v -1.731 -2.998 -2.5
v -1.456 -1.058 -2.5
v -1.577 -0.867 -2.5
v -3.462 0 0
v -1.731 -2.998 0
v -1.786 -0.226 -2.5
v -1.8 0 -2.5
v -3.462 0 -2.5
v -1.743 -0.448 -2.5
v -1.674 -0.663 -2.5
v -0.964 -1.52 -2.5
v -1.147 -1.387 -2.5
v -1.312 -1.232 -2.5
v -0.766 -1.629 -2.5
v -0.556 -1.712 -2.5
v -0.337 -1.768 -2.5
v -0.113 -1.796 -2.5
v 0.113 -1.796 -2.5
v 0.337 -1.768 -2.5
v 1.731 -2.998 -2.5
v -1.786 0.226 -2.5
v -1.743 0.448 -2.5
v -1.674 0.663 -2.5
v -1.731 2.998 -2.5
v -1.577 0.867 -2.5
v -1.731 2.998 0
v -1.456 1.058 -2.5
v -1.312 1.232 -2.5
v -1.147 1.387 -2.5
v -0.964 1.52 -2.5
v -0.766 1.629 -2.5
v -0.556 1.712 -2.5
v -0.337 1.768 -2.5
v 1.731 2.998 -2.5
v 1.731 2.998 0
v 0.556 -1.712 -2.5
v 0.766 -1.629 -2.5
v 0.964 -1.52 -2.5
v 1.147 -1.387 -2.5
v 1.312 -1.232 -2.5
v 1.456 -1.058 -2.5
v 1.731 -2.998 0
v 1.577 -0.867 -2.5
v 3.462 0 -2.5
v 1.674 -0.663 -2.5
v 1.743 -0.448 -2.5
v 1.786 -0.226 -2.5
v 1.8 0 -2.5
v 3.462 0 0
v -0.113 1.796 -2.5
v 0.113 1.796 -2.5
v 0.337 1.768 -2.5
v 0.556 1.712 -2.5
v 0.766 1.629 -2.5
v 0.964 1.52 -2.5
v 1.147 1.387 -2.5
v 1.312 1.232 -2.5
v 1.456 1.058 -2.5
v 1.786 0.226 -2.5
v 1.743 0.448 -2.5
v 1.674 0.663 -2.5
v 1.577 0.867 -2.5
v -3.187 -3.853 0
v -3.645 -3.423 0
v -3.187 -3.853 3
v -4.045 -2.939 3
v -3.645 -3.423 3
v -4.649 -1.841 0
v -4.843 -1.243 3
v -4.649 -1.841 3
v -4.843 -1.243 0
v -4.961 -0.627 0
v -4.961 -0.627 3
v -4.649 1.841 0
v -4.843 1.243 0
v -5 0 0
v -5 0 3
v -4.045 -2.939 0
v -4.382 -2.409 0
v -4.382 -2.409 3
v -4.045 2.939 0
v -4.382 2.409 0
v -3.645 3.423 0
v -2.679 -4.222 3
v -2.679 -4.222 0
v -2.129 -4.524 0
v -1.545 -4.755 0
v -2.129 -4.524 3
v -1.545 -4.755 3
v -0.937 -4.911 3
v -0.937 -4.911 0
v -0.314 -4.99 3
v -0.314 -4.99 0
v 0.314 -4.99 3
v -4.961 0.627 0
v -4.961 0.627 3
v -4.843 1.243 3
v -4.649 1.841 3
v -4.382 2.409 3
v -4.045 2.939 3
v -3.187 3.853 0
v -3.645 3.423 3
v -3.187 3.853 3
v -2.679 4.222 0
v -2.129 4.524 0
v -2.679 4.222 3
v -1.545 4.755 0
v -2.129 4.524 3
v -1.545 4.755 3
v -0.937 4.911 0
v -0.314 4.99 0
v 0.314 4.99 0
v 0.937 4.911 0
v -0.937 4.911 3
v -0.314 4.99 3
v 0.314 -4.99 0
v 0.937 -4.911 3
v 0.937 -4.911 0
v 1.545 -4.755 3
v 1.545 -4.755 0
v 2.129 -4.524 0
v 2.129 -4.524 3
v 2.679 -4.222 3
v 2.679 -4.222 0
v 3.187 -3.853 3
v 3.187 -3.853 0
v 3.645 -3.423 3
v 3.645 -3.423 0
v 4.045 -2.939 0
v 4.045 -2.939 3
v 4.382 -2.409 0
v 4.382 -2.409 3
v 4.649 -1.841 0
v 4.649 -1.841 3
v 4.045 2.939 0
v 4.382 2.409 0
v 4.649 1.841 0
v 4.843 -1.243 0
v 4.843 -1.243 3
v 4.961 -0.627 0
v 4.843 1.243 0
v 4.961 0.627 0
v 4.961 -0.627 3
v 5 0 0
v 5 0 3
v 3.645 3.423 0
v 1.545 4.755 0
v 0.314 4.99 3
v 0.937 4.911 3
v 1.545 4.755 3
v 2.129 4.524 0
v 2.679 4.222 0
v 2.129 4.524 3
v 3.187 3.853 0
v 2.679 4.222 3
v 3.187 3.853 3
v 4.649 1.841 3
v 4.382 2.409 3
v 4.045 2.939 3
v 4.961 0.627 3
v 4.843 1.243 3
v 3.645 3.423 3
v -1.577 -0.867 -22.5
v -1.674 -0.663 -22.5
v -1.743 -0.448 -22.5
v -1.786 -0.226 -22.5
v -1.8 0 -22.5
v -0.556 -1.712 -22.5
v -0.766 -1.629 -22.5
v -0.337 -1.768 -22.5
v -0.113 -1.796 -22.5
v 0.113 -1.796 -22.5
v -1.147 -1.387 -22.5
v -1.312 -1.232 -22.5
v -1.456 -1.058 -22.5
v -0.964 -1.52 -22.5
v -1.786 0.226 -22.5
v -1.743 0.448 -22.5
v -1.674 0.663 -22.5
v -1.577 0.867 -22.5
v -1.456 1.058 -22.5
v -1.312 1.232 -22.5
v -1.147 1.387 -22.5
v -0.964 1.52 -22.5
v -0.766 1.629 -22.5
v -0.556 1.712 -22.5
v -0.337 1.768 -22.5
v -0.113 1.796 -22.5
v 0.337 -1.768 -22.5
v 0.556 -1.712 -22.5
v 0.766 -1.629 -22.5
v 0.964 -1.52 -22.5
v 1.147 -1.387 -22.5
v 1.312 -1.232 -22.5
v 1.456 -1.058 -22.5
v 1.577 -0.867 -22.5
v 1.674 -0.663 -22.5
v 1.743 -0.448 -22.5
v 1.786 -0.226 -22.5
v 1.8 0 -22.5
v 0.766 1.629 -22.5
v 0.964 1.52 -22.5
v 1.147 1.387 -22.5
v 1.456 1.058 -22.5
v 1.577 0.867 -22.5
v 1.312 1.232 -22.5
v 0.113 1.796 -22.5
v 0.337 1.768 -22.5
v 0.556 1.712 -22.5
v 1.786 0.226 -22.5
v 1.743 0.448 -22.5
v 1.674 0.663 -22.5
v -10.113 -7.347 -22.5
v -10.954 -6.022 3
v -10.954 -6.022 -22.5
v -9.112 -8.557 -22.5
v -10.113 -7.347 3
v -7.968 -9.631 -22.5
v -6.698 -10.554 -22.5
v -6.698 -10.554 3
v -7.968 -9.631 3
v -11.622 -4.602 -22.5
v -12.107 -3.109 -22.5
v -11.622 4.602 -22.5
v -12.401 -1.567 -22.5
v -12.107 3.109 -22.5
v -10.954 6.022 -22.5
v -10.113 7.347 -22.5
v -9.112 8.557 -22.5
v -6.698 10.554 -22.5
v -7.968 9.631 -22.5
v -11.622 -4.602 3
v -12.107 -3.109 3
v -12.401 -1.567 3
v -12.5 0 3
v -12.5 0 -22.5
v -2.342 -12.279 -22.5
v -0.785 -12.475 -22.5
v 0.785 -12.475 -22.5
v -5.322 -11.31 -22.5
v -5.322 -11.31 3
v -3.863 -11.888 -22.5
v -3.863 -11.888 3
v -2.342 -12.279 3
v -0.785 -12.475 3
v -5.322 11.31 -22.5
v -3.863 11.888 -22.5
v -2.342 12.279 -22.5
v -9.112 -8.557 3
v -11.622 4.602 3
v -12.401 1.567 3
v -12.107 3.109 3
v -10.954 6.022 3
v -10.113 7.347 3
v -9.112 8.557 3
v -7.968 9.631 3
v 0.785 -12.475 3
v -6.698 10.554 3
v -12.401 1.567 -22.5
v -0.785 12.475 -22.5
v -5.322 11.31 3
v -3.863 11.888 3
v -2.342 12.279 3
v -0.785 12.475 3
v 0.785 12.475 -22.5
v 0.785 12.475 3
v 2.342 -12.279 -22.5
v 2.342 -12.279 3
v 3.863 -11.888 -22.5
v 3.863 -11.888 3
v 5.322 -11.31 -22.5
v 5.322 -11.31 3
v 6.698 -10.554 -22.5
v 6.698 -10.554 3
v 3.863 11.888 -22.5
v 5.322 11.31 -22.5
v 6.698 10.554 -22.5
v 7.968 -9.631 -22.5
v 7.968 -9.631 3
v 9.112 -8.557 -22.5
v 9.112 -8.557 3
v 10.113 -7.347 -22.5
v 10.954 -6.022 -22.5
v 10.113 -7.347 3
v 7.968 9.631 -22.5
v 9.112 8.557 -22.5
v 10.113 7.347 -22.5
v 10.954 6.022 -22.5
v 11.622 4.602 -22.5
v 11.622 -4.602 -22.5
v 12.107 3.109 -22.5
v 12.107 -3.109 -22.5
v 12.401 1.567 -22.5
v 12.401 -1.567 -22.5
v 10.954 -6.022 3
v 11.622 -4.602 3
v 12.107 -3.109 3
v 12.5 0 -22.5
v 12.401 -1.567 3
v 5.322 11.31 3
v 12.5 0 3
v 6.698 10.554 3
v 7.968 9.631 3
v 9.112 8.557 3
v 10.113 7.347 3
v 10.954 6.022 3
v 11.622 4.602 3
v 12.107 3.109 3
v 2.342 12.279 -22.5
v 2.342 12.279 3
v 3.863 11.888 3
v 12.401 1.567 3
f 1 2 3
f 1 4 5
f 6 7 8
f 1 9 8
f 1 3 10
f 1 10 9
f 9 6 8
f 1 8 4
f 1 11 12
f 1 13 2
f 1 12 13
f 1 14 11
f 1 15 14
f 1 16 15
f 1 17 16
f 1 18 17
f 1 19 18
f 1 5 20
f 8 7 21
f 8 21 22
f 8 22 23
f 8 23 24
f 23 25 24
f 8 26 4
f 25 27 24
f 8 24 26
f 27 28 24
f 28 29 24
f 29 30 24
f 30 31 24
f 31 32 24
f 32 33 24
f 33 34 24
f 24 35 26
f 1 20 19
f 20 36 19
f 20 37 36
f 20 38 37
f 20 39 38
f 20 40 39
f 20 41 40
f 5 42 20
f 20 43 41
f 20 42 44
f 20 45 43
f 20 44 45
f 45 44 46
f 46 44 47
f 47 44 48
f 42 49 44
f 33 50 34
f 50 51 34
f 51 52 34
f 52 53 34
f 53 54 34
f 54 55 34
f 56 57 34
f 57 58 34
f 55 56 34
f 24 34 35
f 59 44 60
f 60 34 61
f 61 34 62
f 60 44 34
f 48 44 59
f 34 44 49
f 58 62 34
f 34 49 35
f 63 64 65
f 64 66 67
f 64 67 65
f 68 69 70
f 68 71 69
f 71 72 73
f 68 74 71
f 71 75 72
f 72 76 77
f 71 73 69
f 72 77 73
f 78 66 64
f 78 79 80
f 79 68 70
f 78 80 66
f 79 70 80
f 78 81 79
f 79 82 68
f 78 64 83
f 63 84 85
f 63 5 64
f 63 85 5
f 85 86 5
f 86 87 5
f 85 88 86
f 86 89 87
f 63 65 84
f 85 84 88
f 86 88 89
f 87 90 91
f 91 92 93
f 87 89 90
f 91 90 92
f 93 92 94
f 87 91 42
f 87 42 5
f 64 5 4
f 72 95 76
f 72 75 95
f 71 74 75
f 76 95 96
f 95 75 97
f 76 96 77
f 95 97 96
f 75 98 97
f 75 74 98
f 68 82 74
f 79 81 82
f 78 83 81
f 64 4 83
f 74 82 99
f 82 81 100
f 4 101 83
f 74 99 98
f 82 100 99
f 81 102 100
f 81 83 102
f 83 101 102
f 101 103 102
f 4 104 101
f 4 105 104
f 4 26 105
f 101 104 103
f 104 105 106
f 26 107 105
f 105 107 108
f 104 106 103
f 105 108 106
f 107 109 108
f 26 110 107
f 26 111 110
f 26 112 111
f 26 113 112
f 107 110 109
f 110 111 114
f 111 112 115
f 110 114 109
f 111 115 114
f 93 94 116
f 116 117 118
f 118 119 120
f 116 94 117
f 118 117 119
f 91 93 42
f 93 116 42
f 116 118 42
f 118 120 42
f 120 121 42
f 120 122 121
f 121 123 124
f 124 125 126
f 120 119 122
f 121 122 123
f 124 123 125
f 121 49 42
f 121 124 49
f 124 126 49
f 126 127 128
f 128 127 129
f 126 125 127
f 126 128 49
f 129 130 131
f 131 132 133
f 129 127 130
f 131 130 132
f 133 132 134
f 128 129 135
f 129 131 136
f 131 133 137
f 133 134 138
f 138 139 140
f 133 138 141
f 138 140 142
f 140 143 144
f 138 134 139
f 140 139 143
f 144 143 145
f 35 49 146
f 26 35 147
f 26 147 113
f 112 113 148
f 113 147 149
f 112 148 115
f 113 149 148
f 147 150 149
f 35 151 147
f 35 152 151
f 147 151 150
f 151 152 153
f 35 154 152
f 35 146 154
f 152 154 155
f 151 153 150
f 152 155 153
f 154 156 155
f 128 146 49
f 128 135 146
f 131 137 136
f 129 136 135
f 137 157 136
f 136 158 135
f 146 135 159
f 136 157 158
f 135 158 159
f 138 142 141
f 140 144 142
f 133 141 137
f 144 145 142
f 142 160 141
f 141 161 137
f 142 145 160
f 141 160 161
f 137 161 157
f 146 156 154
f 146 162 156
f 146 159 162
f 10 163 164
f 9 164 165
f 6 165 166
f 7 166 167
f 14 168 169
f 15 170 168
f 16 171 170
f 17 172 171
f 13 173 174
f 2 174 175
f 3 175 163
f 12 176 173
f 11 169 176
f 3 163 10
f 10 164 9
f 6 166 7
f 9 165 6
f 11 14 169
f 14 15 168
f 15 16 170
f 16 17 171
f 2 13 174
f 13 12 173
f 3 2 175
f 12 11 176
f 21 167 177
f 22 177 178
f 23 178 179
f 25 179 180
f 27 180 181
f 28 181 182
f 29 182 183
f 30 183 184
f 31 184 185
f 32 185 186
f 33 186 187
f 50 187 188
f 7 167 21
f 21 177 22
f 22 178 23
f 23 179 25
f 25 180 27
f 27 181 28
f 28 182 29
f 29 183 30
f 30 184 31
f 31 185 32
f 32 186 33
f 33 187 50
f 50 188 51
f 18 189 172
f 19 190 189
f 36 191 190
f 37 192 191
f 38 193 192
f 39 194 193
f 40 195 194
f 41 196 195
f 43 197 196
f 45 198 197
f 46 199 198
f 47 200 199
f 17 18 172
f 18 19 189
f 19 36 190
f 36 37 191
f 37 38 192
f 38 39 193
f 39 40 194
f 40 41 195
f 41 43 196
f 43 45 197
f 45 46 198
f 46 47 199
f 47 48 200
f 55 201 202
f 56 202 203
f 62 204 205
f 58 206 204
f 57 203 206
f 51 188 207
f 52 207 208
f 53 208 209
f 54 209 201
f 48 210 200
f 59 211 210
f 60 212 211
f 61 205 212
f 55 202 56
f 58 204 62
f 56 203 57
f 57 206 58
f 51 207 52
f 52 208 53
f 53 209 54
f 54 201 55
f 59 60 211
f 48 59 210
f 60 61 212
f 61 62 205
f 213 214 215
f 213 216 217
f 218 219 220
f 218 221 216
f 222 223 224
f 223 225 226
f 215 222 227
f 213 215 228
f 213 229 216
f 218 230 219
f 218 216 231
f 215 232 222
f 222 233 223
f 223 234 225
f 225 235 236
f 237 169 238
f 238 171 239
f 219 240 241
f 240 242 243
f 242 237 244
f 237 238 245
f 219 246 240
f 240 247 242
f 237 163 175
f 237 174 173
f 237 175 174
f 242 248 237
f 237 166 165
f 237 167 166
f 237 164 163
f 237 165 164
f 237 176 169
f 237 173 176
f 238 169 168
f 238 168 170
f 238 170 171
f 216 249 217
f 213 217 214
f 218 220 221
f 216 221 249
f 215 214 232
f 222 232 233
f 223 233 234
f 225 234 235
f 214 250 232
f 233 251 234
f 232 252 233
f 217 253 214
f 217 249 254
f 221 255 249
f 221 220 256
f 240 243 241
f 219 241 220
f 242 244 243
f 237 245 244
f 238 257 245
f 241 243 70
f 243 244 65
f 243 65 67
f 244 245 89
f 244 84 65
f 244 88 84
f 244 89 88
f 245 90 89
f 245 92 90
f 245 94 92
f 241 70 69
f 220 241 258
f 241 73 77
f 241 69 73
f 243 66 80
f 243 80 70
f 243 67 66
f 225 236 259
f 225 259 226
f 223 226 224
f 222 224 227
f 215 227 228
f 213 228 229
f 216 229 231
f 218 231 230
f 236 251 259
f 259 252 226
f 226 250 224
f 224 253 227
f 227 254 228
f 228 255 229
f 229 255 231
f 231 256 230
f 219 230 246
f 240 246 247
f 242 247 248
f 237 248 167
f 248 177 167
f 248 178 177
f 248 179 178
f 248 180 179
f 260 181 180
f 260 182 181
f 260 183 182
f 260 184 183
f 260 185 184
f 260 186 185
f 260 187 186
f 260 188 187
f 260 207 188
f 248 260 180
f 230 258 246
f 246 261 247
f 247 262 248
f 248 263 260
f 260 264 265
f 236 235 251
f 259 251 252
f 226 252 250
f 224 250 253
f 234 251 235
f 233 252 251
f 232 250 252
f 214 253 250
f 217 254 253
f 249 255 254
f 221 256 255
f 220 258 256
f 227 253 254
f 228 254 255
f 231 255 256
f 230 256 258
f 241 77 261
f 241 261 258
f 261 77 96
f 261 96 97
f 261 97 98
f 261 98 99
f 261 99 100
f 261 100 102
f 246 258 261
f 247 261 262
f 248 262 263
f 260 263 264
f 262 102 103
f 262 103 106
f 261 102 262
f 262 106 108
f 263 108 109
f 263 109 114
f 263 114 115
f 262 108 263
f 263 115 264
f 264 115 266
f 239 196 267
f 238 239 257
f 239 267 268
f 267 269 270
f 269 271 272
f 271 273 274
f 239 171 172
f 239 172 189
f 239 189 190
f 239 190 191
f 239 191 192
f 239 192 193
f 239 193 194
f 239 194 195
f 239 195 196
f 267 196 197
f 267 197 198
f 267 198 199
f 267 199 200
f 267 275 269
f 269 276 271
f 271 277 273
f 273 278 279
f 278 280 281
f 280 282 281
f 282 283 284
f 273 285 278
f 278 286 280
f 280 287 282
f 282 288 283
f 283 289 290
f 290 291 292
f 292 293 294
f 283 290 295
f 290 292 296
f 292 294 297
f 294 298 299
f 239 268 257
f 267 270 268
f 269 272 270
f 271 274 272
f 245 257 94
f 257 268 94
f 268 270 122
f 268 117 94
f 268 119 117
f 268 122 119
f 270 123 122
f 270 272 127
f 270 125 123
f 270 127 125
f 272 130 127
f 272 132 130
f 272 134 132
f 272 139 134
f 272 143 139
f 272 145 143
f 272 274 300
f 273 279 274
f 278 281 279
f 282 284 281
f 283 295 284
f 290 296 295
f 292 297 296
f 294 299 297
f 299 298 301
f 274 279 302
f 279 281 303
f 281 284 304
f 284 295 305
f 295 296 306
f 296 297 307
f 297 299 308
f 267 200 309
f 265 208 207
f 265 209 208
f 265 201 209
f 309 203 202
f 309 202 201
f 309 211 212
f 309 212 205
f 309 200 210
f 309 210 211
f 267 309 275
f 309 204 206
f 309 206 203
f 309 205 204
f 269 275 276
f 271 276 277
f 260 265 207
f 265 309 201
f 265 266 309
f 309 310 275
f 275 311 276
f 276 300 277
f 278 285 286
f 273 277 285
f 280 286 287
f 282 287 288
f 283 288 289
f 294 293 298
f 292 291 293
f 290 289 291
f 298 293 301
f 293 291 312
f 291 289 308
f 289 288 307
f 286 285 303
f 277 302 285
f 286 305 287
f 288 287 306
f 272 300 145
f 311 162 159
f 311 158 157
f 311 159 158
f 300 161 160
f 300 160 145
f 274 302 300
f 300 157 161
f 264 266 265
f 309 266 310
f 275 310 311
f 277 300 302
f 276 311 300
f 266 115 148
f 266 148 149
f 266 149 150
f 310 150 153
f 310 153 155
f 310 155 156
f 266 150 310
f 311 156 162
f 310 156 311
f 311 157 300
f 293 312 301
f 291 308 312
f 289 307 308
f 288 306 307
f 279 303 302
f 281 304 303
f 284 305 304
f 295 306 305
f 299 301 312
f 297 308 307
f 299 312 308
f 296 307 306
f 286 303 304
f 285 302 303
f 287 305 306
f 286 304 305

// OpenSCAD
$fn = 50;


difference() {
	union() {
		translate(v = [0, 0, -22.5000000000]) {
			cylinder(h = 25.5000000000, r = 12.5000000000);
		}
	}
	union() {
		translate(v = [0, 0, 0]) {
			rotate(a = [0, 0, 0]) {
				difference() {
					union() {
						translate(v = [0, 0, -2.5000000000]) {
							linear_extrude(height = 2.5000000000) {
								polygon(points = [[3.4620000000, 0.0000000000], [1.7310000000, 2.9981799479], [-1.7310000000, 2.9981799479], [-3.4620000000, 0.0000000000], [-1.7310000000, -2.9981799479], [1.7310000000, -2.9981799479]]);
							}
						}
					}
					union();
				}
			}
		}
		#cylinder(h = 3, r = 5.0000000000);
		#translate(v = [0, 0, -100.0000000000]) {
			cylinder(h = 200, r = 1.8000000000);
		}
	}
}
